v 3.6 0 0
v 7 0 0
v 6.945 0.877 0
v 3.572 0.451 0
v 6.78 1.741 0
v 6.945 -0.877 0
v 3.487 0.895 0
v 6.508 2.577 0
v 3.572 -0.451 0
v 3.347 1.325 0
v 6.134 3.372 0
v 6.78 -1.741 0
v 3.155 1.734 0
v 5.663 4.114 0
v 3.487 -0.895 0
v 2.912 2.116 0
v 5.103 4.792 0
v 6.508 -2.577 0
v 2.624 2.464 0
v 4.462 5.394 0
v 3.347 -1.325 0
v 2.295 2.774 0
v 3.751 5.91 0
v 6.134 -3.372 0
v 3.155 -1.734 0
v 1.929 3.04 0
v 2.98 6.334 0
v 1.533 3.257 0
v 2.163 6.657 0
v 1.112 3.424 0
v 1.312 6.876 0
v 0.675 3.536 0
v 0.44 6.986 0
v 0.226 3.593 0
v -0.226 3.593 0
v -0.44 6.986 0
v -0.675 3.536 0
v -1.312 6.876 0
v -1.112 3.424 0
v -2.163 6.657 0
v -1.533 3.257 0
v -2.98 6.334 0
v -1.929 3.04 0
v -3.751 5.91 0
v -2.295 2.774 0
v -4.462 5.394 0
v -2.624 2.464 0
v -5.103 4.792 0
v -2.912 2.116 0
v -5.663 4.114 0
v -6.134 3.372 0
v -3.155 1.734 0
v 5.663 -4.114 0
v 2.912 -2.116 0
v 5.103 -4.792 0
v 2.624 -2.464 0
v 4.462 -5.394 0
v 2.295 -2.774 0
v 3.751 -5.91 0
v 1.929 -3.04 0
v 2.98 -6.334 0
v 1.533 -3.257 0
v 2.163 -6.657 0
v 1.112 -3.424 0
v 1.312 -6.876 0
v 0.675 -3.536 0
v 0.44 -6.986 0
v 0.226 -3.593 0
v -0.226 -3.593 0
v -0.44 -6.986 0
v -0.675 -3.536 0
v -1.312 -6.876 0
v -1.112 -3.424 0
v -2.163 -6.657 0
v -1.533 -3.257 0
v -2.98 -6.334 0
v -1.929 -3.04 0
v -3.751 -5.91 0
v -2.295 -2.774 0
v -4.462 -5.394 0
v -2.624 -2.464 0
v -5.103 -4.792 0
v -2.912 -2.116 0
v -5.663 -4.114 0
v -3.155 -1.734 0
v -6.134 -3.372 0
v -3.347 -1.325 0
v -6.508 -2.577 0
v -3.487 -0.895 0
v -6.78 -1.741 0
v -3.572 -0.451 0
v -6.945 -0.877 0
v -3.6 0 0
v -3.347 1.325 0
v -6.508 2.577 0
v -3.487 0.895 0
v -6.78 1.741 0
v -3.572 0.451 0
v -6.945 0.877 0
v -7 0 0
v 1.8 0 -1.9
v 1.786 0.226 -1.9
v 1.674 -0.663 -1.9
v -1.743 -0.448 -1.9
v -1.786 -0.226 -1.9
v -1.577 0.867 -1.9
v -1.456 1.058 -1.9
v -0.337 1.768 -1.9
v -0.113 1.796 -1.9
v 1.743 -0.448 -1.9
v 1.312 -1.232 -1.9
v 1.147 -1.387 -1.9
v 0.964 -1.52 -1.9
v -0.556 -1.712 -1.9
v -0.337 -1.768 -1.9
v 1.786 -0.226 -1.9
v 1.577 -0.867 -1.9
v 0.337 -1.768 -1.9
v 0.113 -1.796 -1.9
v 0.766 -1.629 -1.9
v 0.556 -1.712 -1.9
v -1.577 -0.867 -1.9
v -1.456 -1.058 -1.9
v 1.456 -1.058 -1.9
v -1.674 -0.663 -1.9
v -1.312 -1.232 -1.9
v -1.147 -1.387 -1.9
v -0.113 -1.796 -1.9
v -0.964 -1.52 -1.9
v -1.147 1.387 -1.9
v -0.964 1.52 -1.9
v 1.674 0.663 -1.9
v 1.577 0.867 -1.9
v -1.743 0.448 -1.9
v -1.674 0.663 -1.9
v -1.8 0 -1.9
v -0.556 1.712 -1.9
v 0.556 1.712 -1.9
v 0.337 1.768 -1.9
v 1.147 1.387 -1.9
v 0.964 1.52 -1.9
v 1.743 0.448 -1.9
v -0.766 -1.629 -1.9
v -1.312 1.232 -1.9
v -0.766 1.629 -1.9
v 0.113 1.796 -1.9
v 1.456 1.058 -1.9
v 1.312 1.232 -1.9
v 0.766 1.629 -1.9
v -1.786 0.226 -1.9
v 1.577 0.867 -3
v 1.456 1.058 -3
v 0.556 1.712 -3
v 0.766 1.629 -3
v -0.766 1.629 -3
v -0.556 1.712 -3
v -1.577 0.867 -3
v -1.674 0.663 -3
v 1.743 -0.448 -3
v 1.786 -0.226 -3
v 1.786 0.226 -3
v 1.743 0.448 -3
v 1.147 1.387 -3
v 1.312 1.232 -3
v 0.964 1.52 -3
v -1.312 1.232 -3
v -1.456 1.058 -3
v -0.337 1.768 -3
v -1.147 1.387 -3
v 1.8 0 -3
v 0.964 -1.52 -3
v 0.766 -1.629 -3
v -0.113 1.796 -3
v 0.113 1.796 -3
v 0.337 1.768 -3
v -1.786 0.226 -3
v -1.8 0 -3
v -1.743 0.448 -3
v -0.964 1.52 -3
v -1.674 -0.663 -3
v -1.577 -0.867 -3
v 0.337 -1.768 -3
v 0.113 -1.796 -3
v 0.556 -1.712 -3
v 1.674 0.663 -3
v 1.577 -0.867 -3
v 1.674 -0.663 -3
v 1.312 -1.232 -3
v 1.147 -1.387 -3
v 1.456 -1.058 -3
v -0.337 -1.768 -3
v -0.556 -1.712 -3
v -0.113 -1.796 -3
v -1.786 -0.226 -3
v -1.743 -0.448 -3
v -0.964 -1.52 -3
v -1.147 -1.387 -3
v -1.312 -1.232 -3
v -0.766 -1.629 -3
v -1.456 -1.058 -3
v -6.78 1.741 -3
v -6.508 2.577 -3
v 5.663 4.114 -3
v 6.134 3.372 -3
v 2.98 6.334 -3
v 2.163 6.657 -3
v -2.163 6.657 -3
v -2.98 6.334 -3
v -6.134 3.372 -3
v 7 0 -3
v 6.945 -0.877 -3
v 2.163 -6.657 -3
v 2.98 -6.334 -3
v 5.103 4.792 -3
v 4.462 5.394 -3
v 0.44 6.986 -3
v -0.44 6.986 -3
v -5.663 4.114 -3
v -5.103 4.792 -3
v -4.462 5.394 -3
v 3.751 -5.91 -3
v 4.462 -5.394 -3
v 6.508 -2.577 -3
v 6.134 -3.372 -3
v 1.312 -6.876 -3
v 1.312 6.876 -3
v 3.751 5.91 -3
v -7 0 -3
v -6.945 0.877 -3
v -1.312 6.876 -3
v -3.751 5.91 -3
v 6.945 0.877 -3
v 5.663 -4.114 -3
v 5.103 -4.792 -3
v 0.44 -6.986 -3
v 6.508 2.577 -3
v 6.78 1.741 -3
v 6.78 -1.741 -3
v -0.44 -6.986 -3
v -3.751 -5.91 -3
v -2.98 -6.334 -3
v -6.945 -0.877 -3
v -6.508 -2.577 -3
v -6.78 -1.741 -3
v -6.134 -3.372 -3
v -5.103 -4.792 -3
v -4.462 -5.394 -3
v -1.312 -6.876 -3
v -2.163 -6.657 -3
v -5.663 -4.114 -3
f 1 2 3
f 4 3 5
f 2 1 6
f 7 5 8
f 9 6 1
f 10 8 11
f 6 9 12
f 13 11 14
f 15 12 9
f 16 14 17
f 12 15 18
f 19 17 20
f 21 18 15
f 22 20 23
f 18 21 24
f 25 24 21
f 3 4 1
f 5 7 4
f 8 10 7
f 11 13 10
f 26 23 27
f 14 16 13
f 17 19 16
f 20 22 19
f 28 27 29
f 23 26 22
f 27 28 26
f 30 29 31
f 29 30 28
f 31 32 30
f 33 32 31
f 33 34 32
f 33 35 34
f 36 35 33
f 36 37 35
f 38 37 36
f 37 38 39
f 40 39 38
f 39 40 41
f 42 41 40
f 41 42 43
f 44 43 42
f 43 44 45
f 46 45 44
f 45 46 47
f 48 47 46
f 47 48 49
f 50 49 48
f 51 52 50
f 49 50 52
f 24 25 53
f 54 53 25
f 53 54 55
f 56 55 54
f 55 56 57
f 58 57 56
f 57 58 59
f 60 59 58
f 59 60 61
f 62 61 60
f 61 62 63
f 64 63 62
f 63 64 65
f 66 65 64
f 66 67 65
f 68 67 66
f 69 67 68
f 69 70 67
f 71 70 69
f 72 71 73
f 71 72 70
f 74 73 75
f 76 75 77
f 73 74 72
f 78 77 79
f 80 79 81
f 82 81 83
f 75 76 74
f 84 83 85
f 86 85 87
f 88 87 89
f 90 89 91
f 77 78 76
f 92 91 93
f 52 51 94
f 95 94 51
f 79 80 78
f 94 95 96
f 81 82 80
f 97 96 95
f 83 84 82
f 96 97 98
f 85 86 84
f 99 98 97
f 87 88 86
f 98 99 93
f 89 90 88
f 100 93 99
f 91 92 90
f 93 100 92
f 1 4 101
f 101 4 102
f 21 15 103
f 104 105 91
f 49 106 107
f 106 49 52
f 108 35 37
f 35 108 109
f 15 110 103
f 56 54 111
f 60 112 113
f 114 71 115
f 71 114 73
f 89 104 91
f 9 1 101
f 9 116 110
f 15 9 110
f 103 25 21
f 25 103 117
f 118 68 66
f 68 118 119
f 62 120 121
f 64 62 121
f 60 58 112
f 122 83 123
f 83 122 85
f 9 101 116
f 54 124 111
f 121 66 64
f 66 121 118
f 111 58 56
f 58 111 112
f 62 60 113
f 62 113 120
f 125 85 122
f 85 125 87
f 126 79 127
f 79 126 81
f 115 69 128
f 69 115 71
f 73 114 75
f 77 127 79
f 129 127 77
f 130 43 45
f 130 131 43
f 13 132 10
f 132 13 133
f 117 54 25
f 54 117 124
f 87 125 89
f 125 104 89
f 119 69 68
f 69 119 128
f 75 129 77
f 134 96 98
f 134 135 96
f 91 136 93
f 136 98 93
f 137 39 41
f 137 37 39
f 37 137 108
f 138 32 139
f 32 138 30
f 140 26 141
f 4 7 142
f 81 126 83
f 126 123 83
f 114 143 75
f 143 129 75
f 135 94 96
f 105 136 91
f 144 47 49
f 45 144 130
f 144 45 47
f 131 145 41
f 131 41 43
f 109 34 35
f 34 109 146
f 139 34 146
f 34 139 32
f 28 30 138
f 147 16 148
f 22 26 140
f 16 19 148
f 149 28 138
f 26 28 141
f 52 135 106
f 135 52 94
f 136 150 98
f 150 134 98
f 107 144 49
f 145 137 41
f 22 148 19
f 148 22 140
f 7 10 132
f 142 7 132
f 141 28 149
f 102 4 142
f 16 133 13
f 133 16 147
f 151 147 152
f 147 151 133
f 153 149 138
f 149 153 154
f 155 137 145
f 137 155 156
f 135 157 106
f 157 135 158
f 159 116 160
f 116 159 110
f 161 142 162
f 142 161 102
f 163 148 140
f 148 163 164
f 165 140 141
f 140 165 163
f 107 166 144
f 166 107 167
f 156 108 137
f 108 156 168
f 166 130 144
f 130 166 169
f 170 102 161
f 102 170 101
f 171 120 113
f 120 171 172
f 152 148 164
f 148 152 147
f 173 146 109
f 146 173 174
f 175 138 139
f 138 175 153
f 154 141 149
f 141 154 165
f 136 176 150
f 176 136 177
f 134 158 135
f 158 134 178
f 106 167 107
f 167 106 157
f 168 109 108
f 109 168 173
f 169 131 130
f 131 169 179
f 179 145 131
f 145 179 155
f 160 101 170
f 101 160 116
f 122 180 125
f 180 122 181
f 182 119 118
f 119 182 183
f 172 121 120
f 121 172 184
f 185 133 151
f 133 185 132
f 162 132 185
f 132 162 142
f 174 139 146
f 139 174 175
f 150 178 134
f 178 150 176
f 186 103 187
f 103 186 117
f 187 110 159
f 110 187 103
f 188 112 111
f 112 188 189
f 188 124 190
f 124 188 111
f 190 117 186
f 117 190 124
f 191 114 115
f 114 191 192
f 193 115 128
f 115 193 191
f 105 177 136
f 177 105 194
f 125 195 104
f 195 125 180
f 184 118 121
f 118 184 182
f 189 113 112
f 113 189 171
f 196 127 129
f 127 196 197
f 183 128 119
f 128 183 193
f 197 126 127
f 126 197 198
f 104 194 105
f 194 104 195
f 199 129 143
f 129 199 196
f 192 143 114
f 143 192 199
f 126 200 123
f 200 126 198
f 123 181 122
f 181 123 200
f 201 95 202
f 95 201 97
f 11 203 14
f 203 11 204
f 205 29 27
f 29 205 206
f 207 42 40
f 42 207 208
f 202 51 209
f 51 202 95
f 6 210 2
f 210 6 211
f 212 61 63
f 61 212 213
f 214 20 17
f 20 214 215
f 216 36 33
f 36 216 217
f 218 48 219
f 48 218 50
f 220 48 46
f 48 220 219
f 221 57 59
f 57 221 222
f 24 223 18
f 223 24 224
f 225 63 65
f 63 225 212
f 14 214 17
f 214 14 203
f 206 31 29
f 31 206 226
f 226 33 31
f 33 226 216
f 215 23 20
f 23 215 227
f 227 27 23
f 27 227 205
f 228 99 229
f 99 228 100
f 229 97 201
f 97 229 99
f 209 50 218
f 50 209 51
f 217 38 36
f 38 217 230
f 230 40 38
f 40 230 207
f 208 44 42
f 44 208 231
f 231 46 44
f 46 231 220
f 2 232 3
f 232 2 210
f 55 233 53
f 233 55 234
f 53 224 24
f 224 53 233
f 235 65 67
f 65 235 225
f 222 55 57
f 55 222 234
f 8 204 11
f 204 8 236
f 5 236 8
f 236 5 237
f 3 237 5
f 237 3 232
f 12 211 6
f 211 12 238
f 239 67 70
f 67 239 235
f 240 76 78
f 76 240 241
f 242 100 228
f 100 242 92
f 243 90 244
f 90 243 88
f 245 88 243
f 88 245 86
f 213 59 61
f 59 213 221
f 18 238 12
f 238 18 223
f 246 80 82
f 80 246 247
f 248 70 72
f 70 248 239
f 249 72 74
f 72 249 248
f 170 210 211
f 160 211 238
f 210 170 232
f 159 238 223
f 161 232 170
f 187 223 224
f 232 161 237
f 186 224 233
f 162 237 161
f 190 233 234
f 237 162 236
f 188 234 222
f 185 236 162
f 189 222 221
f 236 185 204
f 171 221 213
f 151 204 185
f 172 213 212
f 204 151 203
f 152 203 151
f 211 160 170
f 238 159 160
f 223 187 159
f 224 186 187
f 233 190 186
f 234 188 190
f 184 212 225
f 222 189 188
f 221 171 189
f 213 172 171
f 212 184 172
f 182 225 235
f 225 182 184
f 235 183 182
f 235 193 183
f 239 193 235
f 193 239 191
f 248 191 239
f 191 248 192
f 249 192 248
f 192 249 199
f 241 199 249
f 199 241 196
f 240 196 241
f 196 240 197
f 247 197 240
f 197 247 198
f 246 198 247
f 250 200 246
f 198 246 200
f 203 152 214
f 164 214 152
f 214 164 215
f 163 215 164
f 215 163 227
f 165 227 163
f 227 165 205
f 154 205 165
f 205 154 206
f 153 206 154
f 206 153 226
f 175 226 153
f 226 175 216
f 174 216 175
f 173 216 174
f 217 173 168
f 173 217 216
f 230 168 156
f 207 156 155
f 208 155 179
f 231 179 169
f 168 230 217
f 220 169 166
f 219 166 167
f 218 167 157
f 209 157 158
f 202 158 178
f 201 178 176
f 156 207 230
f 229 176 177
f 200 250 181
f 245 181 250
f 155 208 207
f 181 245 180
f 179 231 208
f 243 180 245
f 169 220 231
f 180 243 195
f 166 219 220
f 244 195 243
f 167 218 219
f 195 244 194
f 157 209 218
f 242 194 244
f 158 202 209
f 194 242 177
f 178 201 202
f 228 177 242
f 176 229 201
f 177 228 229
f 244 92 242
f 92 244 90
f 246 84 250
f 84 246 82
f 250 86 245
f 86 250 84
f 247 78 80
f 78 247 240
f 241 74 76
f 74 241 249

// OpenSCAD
$fn = 50;

difference() {
	union() {
		translate(v = [0, 0, -3.0]) {
			cylinder(h = 3, r = 7.0);
		}
	}
	union() {
		translate(v = [0, 0, 0]) {
			rotate(a = [0, 0, 0]) {
				difference() {
					union() {
						translate(v = [0, 0, -6.0]) {
							cylinder(h = 6, r = 1.5);
						}
						translate(v = [0, 0, -1.9]) {
							cylinder(h = 1.9, r1 = 1.8, r2 = 3.6);
						}
						translate(v = [0, 0, -6.0]) {
							cylinder(h = 6, r = 1.8);
						}
						translate(v = [0, 0, -6.0]) {
							cylinder(h = 6, r = 1.5);
						}
					}
					union();
				}
			}
		}
	}
}
